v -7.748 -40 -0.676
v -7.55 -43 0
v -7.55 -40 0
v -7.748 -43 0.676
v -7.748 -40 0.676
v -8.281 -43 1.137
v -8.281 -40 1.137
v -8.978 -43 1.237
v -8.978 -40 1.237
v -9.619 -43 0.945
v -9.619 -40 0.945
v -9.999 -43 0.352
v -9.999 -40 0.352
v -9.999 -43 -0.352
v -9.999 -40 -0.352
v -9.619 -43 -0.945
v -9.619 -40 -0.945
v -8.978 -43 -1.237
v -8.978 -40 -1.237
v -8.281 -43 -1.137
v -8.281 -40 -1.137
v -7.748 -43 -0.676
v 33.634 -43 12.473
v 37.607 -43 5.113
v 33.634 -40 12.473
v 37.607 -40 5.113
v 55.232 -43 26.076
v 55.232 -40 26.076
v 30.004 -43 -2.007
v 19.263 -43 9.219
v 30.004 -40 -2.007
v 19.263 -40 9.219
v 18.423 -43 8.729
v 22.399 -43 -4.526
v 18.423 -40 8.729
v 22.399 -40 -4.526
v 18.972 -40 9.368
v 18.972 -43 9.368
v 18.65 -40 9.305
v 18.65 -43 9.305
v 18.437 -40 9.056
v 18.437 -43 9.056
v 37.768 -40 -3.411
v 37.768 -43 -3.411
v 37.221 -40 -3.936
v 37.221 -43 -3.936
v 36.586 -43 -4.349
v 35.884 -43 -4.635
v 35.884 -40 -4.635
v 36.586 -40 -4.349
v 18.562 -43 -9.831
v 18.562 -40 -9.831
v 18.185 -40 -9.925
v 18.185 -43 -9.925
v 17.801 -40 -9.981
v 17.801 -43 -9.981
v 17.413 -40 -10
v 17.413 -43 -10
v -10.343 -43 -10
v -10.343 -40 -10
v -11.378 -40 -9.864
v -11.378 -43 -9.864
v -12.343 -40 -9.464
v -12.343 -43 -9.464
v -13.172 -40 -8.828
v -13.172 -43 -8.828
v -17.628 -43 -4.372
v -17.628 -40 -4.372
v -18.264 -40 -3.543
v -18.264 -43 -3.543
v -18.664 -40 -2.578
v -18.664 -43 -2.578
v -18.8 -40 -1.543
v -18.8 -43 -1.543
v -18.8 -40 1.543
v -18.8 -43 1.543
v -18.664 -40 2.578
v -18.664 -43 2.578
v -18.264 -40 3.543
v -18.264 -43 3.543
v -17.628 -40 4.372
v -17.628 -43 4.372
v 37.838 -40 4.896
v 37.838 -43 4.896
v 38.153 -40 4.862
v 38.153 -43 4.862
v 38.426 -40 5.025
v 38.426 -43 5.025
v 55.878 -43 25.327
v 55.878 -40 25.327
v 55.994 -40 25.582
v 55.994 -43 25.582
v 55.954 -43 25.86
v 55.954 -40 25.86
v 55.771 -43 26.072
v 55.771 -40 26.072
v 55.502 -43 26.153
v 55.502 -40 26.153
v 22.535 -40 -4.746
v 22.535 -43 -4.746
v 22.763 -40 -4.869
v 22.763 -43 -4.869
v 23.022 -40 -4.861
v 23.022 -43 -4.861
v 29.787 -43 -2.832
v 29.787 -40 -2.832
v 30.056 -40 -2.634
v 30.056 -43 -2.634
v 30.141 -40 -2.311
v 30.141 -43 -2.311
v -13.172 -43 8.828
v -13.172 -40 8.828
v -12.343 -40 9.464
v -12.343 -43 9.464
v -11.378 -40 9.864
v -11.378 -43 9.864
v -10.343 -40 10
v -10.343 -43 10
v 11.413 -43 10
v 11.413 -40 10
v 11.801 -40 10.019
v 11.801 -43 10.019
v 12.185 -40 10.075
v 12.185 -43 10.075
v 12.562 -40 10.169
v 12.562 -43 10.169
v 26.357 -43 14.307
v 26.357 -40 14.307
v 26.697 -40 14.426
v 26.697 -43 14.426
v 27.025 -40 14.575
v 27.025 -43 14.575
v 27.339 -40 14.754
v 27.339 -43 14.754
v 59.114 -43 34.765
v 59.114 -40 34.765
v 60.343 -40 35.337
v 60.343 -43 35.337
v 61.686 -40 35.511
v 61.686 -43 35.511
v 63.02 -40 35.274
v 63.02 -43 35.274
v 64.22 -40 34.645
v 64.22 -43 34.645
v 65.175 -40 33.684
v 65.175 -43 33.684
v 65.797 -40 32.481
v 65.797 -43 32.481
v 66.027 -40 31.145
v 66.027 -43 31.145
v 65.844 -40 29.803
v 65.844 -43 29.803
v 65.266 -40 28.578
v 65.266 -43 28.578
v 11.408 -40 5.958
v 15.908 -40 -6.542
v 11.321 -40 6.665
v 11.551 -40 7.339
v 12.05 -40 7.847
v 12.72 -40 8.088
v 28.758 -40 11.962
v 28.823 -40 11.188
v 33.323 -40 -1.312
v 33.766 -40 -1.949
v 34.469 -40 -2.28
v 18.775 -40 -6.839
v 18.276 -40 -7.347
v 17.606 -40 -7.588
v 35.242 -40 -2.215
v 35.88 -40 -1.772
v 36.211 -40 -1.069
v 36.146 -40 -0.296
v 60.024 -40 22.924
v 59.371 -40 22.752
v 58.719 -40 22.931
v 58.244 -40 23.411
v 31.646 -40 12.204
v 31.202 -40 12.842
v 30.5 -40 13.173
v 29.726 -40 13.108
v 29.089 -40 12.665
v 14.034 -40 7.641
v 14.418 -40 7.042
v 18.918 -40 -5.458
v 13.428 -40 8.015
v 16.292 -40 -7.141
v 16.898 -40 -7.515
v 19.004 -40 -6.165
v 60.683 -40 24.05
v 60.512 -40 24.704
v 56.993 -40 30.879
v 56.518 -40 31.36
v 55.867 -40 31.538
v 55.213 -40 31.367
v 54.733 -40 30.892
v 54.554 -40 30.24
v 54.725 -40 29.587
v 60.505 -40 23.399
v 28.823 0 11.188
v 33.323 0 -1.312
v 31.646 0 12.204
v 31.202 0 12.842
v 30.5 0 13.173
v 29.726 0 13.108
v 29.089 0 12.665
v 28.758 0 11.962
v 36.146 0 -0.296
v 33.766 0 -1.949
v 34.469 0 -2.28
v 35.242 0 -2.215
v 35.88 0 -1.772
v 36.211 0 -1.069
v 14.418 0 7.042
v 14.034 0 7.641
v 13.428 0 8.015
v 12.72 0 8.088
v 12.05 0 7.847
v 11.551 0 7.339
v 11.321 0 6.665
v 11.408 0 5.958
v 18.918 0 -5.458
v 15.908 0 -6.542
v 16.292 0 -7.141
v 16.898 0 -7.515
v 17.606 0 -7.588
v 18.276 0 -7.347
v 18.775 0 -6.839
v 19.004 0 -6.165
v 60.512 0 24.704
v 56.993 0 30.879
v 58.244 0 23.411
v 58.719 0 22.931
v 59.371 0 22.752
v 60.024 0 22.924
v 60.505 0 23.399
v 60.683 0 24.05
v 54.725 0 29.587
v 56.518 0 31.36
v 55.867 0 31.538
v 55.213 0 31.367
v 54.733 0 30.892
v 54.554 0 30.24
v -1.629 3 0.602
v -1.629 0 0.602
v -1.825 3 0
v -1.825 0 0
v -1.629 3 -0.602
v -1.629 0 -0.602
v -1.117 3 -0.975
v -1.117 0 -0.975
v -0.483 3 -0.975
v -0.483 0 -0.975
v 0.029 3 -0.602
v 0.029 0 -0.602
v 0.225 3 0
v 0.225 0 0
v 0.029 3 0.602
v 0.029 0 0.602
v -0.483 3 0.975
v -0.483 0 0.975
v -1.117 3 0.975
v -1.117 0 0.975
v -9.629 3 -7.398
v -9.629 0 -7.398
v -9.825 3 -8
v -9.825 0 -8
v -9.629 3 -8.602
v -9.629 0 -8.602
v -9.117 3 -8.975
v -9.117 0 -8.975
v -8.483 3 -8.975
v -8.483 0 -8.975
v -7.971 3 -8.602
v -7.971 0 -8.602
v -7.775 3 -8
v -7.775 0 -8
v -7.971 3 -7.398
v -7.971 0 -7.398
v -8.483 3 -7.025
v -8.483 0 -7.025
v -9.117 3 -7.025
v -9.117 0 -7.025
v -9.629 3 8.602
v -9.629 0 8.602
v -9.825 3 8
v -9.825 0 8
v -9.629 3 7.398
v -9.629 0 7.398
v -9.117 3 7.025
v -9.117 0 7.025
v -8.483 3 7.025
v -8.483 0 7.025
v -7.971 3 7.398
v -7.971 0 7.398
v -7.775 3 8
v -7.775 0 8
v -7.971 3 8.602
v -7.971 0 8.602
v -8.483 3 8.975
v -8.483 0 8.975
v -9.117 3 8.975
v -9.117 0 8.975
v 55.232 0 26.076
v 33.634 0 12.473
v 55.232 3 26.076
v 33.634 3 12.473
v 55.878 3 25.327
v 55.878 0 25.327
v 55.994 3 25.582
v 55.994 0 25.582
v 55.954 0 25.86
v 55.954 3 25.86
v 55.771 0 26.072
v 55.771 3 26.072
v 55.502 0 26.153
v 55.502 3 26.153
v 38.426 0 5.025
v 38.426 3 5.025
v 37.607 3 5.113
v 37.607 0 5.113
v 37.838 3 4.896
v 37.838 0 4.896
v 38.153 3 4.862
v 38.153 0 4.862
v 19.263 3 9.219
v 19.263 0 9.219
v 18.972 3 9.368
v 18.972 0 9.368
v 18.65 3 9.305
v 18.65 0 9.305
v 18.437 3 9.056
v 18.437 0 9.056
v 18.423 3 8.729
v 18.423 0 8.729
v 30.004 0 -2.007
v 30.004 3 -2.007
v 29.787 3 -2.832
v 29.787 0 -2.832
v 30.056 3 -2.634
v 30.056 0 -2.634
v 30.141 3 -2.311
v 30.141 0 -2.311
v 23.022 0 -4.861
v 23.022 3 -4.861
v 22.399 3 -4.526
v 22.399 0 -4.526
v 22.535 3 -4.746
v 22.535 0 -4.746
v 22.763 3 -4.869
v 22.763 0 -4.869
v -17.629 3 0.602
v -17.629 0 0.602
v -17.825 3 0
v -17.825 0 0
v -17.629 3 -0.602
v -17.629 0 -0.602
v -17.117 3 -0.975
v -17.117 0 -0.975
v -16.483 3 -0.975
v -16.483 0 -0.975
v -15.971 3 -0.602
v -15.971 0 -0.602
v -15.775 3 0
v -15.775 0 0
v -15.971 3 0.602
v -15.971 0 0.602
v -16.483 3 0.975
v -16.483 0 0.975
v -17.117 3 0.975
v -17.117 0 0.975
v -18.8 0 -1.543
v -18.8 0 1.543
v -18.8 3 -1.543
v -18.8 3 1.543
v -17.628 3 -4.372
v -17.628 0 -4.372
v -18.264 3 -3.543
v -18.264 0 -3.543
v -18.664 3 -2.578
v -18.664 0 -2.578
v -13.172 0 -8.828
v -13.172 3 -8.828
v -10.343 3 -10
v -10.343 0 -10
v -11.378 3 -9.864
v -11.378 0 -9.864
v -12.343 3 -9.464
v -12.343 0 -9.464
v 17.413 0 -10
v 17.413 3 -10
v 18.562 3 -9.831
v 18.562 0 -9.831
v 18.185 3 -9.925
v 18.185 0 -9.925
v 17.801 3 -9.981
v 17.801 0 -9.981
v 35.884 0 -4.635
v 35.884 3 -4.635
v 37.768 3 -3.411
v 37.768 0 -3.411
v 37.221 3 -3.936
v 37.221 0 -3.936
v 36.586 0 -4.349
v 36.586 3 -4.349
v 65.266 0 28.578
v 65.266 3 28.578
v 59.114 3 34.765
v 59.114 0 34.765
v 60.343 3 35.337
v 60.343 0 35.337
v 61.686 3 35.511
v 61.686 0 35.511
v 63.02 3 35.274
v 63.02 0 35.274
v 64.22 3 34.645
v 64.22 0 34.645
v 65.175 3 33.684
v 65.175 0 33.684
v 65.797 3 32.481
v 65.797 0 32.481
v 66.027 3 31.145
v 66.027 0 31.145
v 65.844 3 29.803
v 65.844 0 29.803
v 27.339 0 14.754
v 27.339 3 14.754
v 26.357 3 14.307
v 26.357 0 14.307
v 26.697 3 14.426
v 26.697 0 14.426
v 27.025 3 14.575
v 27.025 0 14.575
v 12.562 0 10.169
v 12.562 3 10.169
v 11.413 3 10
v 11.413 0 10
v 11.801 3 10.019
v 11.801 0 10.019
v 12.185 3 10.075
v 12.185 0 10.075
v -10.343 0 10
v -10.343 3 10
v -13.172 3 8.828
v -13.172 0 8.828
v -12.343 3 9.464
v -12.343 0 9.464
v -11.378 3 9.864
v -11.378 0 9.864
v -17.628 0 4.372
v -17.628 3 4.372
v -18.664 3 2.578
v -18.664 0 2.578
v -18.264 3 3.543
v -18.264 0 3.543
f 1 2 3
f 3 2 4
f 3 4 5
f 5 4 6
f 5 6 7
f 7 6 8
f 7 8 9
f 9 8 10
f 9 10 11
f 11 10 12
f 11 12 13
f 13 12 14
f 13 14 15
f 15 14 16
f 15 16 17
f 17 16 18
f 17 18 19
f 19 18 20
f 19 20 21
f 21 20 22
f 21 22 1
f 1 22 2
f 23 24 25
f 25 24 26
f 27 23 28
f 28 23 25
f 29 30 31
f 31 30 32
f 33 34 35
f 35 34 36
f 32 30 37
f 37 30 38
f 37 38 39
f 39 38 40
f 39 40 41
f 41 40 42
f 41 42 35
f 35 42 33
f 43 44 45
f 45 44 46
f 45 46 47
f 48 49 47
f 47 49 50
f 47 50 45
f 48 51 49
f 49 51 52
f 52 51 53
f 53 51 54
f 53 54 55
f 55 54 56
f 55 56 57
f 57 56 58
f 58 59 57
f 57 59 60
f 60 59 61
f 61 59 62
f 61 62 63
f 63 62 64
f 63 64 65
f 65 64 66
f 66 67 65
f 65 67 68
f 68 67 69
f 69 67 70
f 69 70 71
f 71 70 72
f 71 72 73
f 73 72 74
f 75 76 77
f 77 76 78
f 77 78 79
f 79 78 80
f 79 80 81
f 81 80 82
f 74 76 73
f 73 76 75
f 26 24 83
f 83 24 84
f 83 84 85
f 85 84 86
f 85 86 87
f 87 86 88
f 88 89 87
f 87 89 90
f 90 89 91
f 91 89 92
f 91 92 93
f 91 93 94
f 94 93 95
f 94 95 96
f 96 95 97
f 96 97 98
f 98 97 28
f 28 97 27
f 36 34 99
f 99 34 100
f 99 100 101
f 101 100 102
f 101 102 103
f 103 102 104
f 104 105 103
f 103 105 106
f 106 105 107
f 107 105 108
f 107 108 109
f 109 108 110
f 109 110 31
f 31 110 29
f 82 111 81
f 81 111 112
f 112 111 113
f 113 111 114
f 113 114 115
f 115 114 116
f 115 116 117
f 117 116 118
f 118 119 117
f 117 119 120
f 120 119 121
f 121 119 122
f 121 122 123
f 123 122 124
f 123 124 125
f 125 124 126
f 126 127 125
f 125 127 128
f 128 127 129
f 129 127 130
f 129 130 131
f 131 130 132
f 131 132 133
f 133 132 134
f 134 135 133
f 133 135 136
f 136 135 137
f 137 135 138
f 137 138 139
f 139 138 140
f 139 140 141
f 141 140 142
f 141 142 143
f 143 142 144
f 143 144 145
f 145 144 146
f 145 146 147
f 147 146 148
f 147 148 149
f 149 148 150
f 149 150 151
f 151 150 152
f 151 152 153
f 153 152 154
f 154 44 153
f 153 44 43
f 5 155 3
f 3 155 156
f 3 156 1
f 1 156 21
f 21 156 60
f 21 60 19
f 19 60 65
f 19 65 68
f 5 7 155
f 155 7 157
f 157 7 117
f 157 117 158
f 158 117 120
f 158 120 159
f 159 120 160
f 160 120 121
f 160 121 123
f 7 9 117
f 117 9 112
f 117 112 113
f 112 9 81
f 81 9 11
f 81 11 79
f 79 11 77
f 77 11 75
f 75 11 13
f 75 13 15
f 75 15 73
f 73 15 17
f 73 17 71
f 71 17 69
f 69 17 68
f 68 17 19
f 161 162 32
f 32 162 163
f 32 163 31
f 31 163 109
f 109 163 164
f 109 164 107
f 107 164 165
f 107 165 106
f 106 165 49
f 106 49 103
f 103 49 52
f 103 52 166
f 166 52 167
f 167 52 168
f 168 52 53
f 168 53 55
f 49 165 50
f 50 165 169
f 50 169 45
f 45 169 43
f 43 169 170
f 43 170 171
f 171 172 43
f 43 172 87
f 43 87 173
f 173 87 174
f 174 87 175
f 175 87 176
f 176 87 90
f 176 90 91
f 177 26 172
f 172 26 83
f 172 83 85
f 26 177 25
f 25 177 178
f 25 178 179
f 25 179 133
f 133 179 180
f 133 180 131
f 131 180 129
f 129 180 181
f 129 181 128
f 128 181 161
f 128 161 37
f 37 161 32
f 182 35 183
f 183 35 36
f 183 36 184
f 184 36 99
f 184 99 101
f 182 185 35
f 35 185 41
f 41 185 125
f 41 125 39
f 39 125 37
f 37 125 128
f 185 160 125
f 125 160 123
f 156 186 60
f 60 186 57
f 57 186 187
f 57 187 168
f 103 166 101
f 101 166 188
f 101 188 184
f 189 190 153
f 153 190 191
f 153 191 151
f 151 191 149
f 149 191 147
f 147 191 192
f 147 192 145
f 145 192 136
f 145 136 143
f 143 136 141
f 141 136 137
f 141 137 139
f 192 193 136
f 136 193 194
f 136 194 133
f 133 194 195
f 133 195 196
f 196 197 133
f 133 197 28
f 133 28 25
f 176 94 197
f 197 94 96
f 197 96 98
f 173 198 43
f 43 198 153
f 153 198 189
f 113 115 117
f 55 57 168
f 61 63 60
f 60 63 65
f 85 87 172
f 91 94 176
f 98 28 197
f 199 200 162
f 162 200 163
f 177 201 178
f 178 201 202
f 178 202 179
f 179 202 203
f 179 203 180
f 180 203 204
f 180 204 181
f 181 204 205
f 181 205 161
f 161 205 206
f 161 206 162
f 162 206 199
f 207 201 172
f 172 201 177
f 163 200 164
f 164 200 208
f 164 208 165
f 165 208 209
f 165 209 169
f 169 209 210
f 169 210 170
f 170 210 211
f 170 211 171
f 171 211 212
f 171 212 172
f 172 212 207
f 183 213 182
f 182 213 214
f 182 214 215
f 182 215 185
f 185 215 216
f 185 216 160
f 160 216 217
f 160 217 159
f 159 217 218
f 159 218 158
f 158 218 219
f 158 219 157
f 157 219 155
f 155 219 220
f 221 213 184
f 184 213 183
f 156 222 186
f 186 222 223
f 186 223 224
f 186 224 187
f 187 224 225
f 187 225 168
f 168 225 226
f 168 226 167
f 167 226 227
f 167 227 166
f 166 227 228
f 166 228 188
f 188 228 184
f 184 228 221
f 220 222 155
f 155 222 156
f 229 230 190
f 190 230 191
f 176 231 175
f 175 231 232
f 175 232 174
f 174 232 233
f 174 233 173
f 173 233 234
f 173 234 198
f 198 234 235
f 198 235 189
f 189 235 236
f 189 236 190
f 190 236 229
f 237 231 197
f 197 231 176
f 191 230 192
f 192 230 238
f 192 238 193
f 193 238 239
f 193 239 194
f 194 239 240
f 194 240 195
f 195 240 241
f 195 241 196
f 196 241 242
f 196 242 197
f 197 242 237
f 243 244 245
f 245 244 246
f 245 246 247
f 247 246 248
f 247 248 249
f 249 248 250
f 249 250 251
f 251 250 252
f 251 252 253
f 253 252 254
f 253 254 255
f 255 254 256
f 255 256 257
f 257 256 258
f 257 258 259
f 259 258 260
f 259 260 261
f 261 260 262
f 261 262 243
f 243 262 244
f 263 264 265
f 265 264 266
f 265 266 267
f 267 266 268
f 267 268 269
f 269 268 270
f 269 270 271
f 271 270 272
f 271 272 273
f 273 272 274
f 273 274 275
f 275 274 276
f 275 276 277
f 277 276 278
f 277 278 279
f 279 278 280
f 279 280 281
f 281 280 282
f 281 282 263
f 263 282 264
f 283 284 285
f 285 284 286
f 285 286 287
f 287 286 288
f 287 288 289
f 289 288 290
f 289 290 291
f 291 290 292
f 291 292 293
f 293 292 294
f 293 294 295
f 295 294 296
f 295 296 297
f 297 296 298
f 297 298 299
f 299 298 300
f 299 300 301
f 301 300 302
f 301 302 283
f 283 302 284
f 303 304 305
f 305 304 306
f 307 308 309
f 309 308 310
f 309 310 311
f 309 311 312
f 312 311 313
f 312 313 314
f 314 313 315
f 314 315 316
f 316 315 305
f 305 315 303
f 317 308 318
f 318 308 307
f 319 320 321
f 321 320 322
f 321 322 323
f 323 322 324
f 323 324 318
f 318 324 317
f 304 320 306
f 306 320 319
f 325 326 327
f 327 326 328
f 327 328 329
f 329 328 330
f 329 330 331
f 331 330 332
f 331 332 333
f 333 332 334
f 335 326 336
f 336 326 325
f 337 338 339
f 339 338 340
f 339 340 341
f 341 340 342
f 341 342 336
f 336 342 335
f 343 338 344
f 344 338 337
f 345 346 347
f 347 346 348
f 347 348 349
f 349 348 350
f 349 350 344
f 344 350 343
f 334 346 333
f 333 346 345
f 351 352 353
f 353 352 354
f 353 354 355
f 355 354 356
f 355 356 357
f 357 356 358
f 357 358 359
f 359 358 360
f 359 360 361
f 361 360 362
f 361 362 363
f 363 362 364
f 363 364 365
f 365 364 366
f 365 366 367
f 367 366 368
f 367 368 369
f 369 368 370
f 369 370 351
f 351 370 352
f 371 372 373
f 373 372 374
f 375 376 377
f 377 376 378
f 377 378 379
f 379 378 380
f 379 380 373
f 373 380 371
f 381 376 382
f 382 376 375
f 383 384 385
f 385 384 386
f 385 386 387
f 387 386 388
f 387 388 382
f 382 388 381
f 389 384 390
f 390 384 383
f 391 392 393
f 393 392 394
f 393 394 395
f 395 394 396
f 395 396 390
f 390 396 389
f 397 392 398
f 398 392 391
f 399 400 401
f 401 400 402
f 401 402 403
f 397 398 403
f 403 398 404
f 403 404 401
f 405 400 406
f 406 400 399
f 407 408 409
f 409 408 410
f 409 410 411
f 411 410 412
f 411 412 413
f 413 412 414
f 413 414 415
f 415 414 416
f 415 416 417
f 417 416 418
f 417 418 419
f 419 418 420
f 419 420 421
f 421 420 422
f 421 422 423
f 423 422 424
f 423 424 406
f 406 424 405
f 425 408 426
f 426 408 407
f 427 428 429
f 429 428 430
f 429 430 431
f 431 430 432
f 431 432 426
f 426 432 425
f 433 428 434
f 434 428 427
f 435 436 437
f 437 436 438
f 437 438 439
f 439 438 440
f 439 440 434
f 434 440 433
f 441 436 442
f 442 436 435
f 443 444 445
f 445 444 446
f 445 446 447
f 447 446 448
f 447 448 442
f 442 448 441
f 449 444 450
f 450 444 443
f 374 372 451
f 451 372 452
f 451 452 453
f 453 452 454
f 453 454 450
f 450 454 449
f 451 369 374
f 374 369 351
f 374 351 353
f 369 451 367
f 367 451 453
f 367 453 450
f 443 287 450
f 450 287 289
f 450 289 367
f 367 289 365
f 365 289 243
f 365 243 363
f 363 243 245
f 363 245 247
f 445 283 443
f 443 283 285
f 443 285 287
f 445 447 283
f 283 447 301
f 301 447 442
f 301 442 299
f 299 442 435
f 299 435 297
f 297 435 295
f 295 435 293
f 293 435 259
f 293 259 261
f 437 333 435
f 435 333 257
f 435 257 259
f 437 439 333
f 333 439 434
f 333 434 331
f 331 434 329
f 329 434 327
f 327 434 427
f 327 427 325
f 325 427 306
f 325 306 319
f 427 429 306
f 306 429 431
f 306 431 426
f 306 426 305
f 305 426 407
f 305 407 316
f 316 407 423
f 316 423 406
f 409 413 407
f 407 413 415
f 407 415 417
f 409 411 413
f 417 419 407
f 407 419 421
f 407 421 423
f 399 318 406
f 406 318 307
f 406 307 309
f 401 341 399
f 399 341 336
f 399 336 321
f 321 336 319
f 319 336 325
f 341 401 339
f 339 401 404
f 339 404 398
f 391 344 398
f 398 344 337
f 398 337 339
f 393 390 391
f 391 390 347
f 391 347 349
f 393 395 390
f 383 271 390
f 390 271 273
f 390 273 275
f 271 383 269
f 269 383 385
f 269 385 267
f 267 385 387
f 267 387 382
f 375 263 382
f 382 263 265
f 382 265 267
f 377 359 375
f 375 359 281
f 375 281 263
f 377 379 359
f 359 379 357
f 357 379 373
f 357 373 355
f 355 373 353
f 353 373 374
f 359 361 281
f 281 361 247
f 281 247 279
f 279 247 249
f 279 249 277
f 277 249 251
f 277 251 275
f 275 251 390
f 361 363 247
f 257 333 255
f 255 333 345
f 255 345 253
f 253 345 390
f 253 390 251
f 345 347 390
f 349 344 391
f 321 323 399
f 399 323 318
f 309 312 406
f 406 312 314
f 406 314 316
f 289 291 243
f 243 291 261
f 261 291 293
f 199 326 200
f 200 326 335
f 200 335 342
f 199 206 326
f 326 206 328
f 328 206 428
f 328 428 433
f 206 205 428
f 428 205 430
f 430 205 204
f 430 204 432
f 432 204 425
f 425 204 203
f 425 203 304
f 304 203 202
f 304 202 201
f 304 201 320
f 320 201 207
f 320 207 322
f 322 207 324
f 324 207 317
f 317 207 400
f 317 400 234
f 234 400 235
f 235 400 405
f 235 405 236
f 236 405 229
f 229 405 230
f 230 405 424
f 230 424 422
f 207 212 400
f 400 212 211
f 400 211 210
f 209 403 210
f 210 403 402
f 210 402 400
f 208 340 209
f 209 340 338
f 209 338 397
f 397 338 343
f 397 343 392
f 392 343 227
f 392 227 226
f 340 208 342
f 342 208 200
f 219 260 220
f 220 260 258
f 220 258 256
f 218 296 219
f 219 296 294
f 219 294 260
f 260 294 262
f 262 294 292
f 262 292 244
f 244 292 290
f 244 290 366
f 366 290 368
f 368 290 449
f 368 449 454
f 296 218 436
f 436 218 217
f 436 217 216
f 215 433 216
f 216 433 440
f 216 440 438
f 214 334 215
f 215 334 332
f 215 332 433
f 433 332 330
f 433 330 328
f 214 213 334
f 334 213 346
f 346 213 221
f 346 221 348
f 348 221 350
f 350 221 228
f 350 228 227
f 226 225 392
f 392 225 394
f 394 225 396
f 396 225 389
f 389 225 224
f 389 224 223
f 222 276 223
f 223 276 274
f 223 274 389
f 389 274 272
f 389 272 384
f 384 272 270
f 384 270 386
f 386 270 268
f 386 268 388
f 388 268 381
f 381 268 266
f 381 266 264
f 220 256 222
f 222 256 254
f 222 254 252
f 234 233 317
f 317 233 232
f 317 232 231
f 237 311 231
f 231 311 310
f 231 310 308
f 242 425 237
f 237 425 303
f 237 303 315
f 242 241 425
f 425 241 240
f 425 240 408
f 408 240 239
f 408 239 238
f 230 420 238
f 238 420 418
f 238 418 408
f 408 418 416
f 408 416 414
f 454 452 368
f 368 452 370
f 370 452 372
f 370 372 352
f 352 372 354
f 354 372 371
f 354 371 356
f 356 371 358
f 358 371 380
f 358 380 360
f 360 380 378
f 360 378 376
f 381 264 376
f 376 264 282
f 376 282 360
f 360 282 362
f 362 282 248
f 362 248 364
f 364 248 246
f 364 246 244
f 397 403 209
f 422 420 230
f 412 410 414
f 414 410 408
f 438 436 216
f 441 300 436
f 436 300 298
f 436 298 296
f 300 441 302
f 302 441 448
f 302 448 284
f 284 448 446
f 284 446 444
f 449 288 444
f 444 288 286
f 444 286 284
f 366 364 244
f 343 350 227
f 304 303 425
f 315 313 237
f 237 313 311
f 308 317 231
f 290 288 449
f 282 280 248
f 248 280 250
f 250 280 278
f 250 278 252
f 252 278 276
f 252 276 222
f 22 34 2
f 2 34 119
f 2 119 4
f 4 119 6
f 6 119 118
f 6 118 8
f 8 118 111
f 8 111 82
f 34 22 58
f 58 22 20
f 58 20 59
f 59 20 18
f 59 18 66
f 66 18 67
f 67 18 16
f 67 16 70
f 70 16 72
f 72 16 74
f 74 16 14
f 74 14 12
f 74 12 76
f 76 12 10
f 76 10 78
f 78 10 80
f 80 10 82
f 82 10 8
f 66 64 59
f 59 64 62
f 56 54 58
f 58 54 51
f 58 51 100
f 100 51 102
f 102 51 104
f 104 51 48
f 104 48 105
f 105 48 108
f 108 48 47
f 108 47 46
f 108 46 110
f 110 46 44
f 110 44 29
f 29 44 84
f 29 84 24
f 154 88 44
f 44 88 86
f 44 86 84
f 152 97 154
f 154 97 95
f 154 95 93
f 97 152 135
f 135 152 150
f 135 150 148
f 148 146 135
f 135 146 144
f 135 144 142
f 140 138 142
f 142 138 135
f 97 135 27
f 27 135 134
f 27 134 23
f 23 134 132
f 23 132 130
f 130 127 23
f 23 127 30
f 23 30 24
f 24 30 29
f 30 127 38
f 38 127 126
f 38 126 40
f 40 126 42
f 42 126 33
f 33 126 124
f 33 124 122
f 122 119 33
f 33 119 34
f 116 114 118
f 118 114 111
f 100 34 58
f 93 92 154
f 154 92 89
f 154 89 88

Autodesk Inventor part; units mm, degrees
ref_plane "YZ Plane" through (0, 0, 0) normal (1, 0, 0) x (0, 1, 0)
ref_plane "XZ Plane" through (0, 0, 0) normal (0, 1, 0) x (-1, 0, 0)
ref_plane "XY Plane" through (0, 0, 0) normal (0, 0, 1) x (1, 0, 0)
sketch "Sketch1" plane through (0, 0, 0) normal (0, 1, 0) x (-1, 0, 0)
  line L0 (-11.4129, 10) -> (10.3431, 10)
  line L1 (20, 2) -> (20, -2)
  line L2 (10.3431, -10) -> (-17.4129, -10)
  line L3 (-20, -10) -> (-20, 10)
  line L4 (20, -10) -> (-20, 10) construction
  line L5 (20, 10) -> (-20, -10) construction
  line L6 (13.1716, -8.8284) -> (17.6284, -4.3716)
  line L7 (13.1716, 8.8284) -> (17.6284, 4.3716)
  line L8 (18.8, 1.5431) -> (18.8, -1.5431)
  arc A0 (18.8, 1.5431) -> (17.6284, 4.3716) centre (14.8, 1.5431) ccw
  arc A1 (17.6284, -4.3716) -> (18.8, -1.5431) centre (14.8, -1.5431) ccw
  arc A2 (13.1716, 8.8284) -> (10.3431, 10) centre (10.3431, 6) ccw
  arc A3 (10.3431, -10) -> (13.1716, -8.8284) centre (10.3431, -6) ccw
  line L9 (-18, -10) -> (-12, 10)
  line L10 (-12.5623, 10.1687) -> (-26.3566, 14.307)
  line L11 (-33.8781, 16.5634) -> (-39.8781, -3.4366)
  line L12 (-35.8836, -4.6349) -> (-18.5623, -9.8313)
  line L13 (-26.8781, 14.4634) -> (-37.0046, -4.2986)
  line L14 (-27.3388, 14.7536) -> (-59.1142, 34.7654)
  line L15 (-37.7675, -3.4111) -> (-65.2661, 28.5779)
  arc A4 (-12.5623, 10.1687) -> (-11.4129, 10) centre (-11.4129, 14) ccw
  arc A5 (-18.5623, -9.8313) -> (-17.4129, -10) centre (-17.4129, -6) ccw
  arc A6 (-27.3388, 14.7536) -> (-26.3566, 14.307) centre (-25.2072, 18.1383) ccw
  arc A7 (-37.7675, -3.4111) -> (-35.8836, -4.6349) centre (-34.7342, -0.8036) ccw
  arc A8 (-59.1142, 34.7654) -> (-65.2661, 28.5779) centre (-61.5814, 31.0663) ccw
  line L16 (18.8, 0) -> (8.8, 0)
  circle A9 centre (0.8, 0) radius 1.025
  circle A10 centre (8.8, -8) radius 1.025
  circle A11 centre (16.8, 0) radius 1.025
  circle A12 centre (8.8, 8) radius 1.025
  line L17 (-23.0219, -4.861) -> (-29.7868, -2.8316)
  line L18 (-22.3993, -4.5258) -> (-18.4228, 8.7292)
  line L19 (-19.263, 9.2186) -> (-30.0044, -2.007)
  arc A13 (-23.0219, -4.861) -> (-22.3993, -4.5258) centre (-22.8782, -4.3821) ccw
  arc A14 (-30.0044, -2.007) -> (-29.7868, -2.8316) centre (-29.6432, -2.3526) ccw
  arc A15 (-18.4228, 8.7292) -> (-19.263, 9.2186) centre (-18.9017, 8.8729) ccw
  line L20 (-37.6066, 5.1132) -> (-33.634, 12.4734)
  line L21 (-33.634, 12.4734) -> (-55.2323, 26.0758)
  line L22 (-55.8779, 25.3268) -> (-38.4257, 5.0247)
  arc A16 (-38.4257, 5.0247) -> (-37.6066, 5.1132) centre (-38.0466, 5.3506) ccw
  arc A17 (-55.2323, 26.0758) -> (-55.8779, 25.3268) centre (-55.4988, 25.6528) ccw
  point P0 (0, 0)
  point P1 (0, 0)
  point P2 (12, -10)
  point P3 (12, 10)
  point P4 (20, 10)
  point P5 (18.8, 3.2)
  point P6 (18.8, -3.2)
  point P7 (-37.9518, 4.4734)
  point P8 (-35.6203, 8.7933)
  dimension "d0" = 40
  dimension "d1" = 20
  dimension "d32" = 8
  dimension "d33" = 8
  dimension "d34" = 8
  dimension "d35" = 8
  dimension "d43" = 1.2
  dimension "d46" = 4
  dimension "d47" = 2
  dimension "d48" = 8
  dimension "d49" = 3
  dimension "d50" = 7
  dimension "d51" = 43.3541
  dimension "d52" = 32.617
  dimension "d53" = 4
  dimension "d54" = 10
  dimension "d55" = 2.05
  dimension "d56" = 8
  dimension "d59" = 360
  dimension "d79" = 0.5
  dimension "d80" = 8
  dimension "d81" = 5
  dimension "d82" = 5
  dimension "d83" = 0.5
extrude "Extrusion1" add sketch "Sketch1" along normal blind 3
sketch "Sketch8" plane through (0, 0, 0) normal (0, -1, 0) x (1, 0, 0)
  arc A0 (17.4129, -10) -> (18.5623, -9.8313) centre (17.4129, -6) ccw projected
  line L0 (-13.1716, -8.8284) -> (-17.6284, -4.3716) projected
  arc A1 (35.8836, -4.6349) -> (37.7675, -3.4111) centre (34.7342, -0.8036) ccw projected
  circle A2 centre (34.7342, -0.8036) radius 1.5
  circle A3 centre (30.2342, 11.6964) radius 1.5
  line L1 (65.2661, 28.5779) -> (37.7675, -3.4111) projected
  line L2 (27.3388, 14.7536) -> (59.1142, 34.7654) projected
  line L3 (15.9075, -6.542) -> (11.4075, 5.958)
  line L4 (14.4183, 7.042) -> (18.9183, -5.458)
  arc A4 (15.9075, -6.542) -> (18.9183, -5.458) centre (17.4129, -6) ccw
  arc A5 (14.4183, 7.042) -> (11.4075, 5.958) centre (12.9129, 6.5) ccw
  line L5 (34.7342, -0.8036) -> (30.2342, 11.6964) construction
  line L6 (36.1456, -0.2955) -> (31.6456, 12.2045)
  line L7 (28.8229, 11.1883) -> (33.3229, -1.3117)
  arc A6 (33.3229, -1.3117) -> (36.1456, -0.2955) centre (34.7342, -0.8036) ccw
  arc A7 (31.6456, 12.2045) -> (28.8229, 11.1883) centre (30.2342, 11.6964) ccw
  line L8 (59.3782, 24.0575) -> (55.8591, 30.2331) construction
  line L9 (60.5121, 24.7036) -> (56.993, 30.8792)
  line L10 (54.7253, 29.587) -> (58.2444, 23.4114)
  arc A8 (58.2444, 23.4114) -> (60.5121, 24.7036) centre (59.3782, 24.0575) ccw
  arc A9 (56.993, 30.8792) -> (54.7253, 29.587) centre (55.8591, 30.2331) ccw
  point P0 (0, 0)
  point P1 (17.9938, -9.9576)
  point P2 (15.1629, 0.25)
  point P3 (32.4842, 5.4464)
  point P4 (57.6187, 27.1453)
  dimension "d64" = 3
  dimension "d69" = 3
  dimension "d70" = 4.5
  dimension "d71" = 12.5
  dimension "d88" = 1.6
extrude "Extrusion7" add sketch "Sketch8" along normal blind 40
extrude "Extrusion8" add sketch "Sketch1" against normal blind 3 from surface at -40 contours A11 L16 | L16 A11 | L0 A2 L7 A0 L8 A1 L6 A3 L2 A5 L12 A7 L15 A8 L14 A6 L10 A4 | A9 | A10 | A12
sketch "Sketch10" plane through (-10.3431, -43, -10) normal (0, -1, 0) x (1, 0, 0)
  line L0 (-8.4569, 8.4569) -> (-8.4569, 11.5431) projected
  line L1 (-8.4569, 10) -> (1.5431, 10)
  circle A0 centre (1.5431, 10) radius 1.25
  point P0 (10.3431, 10)
  dimension "d84" = 10
  dimension "d85" = 2.5
extrude "Extrusion9" cut sketch "Sketch10" against normal blind 3
equation "\"d33\" = d32"
equation "\"d34\" = d32"
equation "\"d35\" = d34"
properties part number "leg_part"
